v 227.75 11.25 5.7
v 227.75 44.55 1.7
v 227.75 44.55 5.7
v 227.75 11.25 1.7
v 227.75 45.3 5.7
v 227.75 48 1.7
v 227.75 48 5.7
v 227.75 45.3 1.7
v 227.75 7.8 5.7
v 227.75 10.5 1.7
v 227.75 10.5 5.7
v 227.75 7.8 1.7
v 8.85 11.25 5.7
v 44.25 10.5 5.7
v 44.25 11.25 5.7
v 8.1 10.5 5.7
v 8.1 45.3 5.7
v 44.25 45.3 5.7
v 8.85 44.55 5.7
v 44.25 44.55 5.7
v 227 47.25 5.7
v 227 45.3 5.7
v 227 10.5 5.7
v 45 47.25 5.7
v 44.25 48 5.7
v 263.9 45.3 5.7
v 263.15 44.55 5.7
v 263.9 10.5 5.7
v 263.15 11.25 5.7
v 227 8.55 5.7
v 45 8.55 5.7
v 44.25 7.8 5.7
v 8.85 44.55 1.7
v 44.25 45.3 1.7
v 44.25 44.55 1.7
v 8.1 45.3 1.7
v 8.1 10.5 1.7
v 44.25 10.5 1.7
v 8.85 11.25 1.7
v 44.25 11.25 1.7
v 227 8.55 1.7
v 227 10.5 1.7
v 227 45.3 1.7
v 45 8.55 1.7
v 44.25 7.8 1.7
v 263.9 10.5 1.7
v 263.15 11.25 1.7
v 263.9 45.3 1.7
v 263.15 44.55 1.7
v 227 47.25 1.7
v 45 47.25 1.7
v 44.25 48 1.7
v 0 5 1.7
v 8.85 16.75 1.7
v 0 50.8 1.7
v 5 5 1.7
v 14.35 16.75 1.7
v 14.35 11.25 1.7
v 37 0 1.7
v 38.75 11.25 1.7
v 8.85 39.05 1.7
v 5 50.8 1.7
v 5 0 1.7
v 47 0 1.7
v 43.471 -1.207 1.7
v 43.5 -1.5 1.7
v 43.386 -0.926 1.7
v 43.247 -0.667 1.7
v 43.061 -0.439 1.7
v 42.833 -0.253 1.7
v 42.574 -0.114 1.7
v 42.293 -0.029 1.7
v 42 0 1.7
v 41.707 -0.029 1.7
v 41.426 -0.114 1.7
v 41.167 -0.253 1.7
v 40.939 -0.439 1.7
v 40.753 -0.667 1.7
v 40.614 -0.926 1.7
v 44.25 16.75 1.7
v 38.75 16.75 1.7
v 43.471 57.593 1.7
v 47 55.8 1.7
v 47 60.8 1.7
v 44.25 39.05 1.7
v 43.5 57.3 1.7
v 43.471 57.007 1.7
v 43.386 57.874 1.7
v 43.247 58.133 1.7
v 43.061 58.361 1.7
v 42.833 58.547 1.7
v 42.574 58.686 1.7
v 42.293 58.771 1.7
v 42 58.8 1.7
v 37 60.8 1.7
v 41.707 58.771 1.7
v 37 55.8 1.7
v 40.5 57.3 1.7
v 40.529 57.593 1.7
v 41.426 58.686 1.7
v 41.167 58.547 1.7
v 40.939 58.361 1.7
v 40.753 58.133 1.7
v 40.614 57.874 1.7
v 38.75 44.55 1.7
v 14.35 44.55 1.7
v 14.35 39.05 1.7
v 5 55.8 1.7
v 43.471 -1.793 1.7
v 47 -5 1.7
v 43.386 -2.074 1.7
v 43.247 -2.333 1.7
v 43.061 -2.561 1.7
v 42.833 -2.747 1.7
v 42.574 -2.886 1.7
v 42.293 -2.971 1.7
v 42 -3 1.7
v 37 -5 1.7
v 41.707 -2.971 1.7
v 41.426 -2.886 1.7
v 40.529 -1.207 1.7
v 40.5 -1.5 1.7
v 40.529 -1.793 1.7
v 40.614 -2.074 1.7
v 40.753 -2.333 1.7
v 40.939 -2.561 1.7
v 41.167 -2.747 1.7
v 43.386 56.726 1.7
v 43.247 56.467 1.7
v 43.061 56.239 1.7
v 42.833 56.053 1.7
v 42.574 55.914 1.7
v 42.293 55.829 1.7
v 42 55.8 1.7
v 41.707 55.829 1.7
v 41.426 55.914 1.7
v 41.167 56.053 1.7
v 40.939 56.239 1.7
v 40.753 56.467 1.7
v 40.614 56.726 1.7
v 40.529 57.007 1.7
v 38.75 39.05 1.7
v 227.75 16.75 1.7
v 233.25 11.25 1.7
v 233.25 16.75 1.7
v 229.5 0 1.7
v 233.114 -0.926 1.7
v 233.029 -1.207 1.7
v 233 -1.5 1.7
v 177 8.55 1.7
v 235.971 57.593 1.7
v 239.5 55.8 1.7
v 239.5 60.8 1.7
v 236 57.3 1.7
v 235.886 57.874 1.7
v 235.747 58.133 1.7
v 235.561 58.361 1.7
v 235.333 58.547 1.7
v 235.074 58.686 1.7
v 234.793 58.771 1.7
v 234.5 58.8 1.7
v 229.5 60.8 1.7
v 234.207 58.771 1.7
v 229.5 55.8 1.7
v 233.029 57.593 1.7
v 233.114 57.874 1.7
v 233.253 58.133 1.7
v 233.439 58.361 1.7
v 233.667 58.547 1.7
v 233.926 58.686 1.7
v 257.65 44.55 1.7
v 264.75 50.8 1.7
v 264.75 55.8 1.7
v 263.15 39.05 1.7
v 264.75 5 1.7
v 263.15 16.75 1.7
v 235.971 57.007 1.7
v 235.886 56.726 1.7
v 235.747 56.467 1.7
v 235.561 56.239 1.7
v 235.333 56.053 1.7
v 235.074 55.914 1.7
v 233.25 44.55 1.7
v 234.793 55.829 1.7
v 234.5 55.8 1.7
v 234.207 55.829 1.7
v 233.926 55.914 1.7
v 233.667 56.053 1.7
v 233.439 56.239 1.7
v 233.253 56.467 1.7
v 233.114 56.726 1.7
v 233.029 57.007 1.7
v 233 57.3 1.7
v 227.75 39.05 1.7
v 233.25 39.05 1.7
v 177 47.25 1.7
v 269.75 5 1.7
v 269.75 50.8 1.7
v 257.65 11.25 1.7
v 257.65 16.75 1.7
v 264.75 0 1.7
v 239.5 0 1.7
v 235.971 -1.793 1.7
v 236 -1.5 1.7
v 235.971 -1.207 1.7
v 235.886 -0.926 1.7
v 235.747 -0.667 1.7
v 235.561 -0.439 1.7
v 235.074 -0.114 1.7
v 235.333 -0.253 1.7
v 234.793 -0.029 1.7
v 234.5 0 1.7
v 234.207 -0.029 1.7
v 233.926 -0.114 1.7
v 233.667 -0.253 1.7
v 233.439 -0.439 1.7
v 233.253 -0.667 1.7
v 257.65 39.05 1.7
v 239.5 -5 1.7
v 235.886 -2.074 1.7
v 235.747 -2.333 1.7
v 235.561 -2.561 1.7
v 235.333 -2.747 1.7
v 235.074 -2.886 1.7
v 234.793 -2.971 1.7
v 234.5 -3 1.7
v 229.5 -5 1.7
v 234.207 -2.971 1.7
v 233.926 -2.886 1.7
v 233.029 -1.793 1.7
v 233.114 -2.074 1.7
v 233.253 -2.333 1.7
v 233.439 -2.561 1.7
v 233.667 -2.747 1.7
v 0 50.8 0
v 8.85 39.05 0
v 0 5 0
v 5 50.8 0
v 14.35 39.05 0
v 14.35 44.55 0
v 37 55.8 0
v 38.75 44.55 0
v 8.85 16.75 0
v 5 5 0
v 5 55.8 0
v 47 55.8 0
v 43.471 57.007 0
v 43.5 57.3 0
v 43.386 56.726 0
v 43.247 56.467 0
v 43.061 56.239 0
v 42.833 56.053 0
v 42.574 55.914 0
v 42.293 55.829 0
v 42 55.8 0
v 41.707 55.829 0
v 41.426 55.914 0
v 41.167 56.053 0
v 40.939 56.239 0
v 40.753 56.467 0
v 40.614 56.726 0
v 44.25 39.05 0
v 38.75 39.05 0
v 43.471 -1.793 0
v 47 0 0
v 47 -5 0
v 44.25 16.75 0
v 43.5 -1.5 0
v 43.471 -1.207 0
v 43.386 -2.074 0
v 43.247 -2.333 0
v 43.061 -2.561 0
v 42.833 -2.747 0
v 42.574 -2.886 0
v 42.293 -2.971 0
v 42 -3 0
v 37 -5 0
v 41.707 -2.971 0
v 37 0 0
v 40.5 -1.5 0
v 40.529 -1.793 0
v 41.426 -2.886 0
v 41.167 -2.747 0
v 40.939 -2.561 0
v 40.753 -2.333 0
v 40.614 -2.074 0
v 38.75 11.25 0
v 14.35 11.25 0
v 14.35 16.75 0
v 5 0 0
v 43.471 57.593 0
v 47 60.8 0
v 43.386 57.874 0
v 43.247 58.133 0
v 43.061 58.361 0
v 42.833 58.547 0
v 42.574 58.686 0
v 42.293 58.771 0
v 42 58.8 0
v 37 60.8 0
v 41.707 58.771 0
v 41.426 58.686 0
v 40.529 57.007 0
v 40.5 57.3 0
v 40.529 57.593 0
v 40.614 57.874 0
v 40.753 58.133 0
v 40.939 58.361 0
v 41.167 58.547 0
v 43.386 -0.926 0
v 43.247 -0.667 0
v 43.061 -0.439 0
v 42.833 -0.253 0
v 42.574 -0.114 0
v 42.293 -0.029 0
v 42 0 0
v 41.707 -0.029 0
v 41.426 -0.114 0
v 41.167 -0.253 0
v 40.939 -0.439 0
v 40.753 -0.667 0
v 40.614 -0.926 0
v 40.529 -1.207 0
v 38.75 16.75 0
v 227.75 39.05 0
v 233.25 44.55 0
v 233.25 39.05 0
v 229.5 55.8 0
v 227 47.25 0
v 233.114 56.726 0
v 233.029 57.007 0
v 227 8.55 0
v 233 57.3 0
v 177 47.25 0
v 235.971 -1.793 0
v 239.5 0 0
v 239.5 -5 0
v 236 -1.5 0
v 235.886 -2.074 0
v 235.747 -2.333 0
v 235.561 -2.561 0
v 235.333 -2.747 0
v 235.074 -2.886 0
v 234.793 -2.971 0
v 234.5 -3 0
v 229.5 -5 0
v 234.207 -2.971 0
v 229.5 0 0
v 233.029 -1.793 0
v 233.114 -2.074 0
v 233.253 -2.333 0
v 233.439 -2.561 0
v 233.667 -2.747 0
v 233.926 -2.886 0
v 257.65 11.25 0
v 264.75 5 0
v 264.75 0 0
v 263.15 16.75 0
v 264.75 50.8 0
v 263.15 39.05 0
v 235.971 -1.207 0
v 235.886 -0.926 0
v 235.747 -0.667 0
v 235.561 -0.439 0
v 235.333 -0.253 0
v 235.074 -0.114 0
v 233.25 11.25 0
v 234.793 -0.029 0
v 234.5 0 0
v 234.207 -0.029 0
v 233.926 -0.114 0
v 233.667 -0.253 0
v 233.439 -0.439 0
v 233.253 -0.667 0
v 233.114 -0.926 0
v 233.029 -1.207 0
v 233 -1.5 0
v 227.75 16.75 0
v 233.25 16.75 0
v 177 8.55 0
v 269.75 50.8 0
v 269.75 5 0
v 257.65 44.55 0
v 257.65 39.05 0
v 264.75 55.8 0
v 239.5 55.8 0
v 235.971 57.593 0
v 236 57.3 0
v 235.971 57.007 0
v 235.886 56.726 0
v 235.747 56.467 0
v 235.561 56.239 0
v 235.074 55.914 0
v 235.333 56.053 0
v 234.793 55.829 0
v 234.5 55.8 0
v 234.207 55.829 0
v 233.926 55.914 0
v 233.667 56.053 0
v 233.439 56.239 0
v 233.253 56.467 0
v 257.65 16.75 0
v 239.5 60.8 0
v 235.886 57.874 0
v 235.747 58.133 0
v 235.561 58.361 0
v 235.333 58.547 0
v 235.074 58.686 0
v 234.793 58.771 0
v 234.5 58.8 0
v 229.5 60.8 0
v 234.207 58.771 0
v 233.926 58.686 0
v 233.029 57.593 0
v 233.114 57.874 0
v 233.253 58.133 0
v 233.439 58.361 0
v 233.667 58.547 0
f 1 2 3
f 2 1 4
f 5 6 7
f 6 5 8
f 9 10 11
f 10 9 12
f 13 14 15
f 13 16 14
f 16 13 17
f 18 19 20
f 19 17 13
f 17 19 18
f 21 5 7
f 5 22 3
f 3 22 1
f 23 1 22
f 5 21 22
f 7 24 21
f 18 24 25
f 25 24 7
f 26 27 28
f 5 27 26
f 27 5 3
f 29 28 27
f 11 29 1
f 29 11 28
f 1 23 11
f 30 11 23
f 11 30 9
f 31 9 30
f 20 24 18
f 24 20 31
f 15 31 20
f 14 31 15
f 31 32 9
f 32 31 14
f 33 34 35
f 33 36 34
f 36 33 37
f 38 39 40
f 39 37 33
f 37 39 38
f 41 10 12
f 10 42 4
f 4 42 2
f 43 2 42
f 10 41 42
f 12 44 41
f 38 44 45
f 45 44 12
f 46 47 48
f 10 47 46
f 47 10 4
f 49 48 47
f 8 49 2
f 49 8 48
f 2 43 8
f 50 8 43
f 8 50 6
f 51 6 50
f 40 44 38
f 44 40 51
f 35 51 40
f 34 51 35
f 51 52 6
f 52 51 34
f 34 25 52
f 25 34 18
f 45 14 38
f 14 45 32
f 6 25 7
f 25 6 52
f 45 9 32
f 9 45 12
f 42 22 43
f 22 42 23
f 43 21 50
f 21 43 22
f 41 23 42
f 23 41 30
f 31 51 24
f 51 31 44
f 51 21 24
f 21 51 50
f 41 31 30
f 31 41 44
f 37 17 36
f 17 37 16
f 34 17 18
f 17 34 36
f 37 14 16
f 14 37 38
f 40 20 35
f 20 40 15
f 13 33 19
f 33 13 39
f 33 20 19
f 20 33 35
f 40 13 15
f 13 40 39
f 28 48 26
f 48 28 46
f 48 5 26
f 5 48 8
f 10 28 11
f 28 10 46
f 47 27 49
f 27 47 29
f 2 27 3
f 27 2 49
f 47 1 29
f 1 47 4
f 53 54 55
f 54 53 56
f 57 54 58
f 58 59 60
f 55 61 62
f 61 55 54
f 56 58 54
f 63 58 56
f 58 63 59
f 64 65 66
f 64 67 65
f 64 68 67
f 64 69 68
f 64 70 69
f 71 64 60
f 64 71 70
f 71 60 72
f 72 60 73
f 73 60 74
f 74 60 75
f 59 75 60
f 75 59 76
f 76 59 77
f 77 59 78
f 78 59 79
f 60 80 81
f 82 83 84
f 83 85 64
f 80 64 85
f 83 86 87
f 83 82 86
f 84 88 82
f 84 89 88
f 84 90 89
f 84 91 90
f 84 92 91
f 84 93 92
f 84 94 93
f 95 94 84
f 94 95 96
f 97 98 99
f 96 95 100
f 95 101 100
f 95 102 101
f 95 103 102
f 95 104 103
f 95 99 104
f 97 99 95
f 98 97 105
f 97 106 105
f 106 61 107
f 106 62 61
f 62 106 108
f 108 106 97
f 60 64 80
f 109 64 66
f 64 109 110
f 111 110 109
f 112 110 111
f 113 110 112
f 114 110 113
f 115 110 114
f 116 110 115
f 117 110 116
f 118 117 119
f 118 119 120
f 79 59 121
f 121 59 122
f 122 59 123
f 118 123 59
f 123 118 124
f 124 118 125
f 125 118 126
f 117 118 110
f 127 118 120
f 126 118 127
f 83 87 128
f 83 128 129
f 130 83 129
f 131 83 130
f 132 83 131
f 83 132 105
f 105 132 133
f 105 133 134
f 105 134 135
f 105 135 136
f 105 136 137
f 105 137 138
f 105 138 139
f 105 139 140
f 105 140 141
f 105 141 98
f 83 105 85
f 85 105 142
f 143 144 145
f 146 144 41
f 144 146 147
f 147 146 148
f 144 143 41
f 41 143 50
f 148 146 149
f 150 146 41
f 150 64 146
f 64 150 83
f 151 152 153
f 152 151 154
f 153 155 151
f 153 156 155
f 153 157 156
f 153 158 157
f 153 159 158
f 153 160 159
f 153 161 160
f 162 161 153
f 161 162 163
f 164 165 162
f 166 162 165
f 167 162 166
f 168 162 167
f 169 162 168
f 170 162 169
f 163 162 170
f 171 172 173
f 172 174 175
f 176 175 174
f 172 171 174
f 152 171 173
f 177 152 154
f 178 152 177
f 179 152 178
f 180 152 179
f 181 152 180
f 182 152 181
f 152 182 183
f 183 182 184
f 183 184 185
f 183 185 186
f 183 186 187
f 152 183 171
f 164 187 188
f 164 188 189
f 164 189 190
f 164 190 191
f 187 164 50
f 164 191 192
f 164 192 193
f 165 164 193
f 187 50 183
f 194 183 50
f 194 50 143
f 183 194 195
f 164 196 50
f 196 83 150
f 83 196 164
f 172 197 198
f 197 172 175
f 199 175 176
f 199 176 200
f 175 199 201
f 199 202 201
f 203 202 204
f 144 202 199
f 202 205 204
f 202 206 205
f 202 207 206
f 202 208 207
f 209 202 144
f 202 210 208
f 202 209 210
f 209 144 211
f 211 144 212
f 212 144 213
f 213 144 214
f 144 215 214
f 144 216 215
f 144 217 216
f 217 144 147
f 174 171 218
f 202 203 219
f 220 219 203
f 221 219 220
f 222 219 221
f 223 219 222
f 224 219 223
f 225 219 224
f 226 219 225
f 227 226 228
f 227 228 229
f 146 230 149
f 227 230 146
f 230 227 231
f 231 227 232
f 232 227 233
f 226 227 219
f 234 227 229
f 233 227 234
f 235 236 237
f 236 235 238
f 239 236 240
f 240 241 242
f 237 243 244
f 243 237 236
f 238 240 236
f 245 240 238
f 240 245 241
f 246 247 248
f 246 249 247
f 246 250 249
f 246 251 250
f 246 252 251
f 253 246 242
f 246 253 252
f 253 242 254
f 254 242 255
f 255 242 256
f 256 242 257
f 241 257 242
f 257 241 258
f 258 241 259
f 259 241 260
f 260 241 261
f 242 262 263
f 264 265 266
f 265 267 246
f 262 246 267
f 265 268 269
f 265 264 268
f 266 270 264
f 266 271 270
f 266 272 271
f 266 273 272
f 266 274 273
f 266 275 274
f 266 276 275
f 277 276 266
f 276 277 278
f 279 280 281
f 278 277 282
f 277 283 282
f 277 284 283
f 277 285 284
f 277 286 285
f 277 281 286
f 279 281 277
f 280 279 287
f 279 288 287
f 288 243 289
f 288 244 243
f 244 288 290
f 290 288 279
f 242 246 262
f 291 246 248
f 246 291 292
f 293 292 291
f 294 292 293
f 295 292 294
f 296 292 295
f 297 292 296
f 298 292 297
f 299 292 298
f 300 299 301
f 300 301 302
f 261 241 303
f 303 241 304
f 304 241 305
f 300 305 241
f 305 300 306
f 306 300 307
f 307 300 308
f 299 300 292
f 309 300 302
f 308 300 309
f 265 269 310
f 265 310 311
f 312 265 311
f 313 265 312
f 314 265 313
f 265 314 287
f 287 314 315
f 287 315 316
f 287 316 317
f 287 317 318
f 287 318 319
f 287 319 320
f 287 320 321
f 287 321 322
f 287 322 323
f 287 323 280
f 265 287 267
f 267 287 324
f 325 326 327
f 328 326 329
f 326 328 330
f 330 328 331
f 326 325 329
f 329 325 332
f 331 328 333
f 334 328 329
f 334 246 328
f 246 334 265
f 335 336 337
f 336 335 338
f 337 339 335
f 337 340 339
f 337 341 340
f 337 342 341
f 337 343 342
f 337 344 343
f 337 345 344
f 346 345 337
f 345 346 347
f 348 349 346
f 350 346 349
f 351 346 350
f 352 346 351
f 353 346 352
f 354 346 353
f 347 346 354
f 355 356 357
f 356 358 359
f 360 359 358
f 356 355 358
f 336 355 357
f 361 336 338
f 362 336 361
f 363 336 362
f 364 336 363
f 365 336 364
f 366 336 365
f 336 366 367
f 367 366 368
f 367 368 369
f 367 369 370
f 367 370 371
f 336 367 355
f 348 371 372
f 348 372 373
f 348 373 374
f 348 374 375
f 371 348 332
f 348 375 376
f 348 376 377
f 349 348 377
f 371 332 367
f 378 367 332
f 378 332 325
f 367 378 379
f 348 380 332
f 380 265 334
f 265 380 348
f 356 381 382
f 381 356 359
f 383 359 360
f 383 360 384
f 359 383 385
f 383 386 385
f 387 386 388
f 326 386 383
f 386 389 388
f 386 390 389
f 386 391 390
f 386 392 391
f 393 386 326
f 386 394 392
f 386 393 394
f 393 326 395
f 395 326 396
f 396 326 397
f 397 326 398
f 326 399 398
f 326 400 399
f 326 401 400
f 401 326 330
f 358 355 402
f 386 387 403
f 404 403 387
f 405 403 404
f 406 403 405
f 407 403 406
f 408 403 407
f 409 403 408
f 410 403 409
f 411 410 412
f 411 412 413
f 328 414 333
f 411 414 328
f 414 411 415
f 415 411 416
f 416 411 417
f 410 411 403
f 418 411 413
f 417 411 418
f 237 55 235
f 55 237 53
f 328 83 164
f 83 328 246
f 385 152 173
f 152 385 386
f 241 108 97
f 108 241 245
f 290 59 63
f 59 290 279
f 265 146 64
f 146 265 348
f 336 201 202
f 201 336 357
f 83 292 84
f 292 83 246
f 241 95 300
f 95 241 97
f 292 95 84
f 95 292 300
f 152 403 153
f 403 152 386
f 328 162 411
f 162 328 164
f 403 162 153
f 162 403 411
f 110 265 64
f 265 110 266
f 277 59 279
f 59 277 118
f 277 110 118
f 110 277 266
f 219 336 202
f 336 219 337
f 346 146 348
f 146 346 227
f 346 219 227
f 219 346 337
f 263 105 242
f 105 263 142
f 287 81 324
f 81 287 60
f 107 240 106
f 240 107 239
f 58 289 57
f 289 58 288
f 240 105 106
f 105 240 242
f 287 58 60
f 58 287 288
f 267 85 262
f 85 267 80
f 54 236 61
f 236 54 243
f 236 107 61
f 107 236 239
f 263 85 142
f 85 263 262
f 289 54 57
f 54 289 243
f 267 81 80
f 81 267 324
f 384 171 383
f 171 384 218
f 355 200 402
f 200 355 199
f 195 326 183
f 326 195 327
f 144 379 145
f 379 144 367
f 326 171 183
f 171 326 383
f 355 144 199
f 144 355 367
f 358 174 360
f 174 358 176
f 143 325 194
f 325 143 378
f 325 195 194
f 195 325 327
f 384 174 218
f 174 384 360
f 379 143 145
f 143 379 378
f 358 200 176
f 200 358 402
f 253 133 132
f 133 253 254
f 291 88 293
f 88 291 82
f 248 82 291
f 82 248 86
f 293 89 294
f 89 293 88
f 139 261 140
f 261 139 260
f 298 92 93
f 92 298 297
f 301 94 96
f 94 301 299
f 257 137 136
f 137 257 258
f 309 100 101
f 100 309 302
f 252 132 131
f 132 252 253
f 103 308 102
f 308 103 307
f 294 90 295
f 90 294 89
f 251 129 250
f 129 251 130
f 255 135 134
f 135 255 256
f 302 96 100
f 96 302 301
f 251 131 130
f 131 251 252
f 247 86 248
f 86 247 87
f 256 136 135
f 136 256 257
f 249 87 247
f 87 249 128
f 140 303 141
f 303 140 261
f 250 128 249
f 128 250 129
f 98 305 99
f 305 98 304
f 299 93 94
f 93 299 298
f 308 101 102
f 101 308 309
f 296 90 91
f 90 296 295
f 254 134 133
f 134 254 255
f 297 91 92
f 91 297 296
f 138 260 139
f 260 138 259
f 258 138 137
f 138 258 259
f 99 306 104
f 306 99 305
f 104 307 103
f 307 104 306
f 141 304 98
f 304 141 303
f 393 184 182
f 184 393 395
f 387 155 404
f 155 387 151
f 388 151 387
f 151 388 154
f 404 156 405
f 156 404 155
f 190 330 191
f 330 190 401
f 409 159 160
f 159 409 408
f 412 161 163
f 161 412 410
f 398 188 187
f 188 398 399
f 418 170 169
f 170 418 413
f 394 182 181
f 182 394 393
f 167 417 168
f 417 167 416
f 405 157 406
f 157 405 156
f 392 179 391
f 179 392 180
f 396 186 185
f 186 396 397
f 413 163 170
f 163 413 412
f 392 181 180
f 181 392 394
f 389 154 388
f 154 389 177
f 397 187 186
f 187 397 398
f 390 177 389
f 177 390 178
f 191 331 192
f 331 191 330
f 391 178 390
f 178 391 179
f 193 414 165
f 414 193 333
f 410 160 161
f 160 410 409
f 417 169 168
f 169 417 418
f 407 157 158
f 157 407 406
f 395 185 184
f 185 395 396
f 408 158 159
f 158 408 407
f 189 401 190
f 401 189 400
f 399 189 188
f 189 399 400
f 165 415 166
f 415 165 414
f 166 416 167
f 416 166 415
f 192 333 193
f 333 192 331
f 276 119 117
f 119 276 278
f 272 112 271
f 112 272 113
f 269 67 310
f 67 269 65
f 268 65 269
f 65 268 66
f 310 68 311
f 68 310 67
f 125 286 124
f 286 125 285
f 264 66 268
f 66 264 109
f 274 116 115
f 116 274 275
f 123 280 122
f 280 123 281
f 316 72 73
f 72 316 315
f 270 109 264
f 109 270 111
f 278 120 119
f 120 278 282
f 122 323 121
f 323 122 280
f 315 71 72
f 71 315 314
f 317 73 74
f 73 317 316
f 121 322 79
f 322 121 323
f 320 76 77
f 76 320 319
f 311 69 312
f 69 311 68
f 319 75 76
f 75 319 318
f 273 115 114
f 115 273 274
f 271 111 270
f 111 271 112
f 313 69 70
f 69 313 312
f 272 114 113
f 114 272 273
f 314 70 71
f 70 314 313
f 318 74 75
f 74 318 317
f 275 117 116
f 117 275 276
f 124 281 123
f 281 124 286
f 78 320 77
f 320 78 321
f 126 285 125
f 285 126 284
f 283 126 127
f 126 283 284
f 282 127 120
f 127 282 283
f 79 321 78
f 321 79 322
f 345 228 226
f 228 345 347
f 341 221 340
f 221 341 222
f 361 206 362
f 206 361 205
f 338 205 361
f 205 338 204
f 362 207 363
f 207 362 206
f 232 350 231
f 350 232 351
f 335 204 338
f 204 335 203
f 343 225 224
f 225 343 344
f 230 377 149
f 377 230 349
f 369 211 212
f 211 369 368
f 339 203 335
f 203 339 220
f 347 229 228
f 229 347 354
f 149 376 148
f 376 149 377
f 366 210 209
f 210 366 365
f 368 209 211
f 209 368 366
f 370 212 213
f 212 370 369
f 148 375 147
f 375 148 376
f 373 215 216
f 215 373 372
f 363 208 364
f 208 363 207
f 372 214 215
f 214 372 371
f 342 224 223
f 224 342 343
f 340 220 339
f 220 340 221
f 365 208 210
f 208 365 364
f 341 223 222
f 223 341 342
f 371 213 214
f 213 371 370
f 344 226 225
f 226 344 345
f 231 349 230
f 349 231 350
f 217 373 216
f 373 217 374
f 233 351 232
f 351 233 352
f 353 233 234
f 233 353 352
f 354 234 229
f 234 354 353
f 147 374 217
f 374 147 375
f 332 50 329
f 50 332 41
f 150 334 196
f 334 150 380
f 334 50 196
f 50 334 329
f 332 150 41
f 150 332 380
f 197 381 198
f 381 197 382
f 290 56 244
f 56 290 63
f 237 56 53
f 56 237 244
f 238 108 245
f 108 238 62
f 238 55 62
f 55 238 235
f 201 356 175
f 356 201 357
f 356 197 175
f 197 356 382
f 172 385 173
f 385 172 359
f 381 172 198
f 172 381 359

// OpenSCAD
// Original LCD module is a large rectangular block
//
original_width  = 272.0;    // Ruler measurement
original_depth  = 55.8;     // Front to back
original_height = 1.7;      // How tall the new mount is (not the old module)

// There are 4 mounting holes which project out from
// the rectangle. The posts they drop onto need a slight
// tab
//
//     1                        2
//
//     3                        4
//
mount_hole_tab_1_from_left  = 37.0;
mount_hole_tab_2_from_right = 32.5;
mount_hole_tab_3_from_left  = 37.0;
mount_hole_tab_4_from_right = 32.5;

mount_hole_tab_depth = 5.0;
mount_hole_tab_width = 10.0;

mount_hole_hole_centre_1_3 = mount_hole_tab_1_from_left + (mount_hole_tab_width/2);
mount_hole_hole_centre_2_4 = mount_hole_tab_2_from_right + (mount_hole_tab_width/2);
mount_hole_hole_diameter   = 3.0;
mount_hole_hole_inset      = 2.0 + (mount_hole_hole_diameter/2);   // To hole centre

// A framing wall is created around the MIPI display to hold
// it in place. 
//
// The height of the wall needs to be taller than the display
// is thick. When the bezel clamps down on it, the belzel will
// clamp the wall, not the display itself.
//
// These values are from the display datasheet, plus a little
// wiggle room. MIPI display is 3.4mm thick, wall needs to be taller.
//
mipi_display_width = 181.5 + 0.5;
mipi_display_depth =  38.2 + 0.5;
mipi_display_frame_height = 3.4 + 0.6;

// The frame walls need to be wide enough so they have the strength
// to hold the display in place. But the wider they are the more the
// gap between main display and side displays. 
// 
mipi_display_frame_width  = 0.75;

mipi_display_frame_outer_width = mipi_display_width + (mipi_display_frame_width*2);
mipi_display_frame_outer_depth = mipi_display_depth + (mipi_display_frame_width*2);

// The MIPI display has a ribbon, a connector and some kapton covered
// circuitry on its underside. There needs to be a hole for this. It's
// also where the display FTC connector heads off to the CM4.
//
mipi_display_circuitry_knockout_width = 50.0;

mipi_centre_point_x = original_width / 2;
mipi_centre_point_y = original_depth / 2;

// OLEDs are the 1.3" version
//
oled_display_width  = 35.4;
oled_display_depth  = 33.3;

// Walls are the same for now
//
oled_display_frame_height = mipi_display_frame_height;
oled_display_frame_width = mipi_display_frame_width;

oled_display_frame_outer_width = oled_display_width + (oled_display_frame_width*2);
oled_display_frame_outer_depth = oled_display_depth + (oled_display_frame_width*2);

$fn = 32;

difference()
{
  // Create a big block and tag on the little tabs for the 
  // mounting holes
  //
  union()
  {
    cube( [original_width, original_depth, original_height] );

    // Sticky out tab, top left
    //
    translate( [mount_hole_tab_1_from_left,
                original_depth,
                0] )
    {
      cube( [mount_hole_tab_width,
             mount_hole_tab_depth,
             original_height] );
    }

    // Sticky out tab, top right
    //
    translate( [original_width - mount_hole_tab_2_from_right - mount_hole_tab_width,
                original_depth,
                0] )
    {
      cube( [mount_hole_tab_width,
             mount_hole_tab_depth,
             original_height] );
    }

    // Sticky out tab, bottom left
    //
    translate( [mount_hole_tab_3_from_left,
                -mount_hole_tab_depth,
                0] )
    {
      cube( [mount_hole_tab_width,
            mount_hole_tab_depth,
            original_height] );
    }

    // Sticky out tab, bottom right
    //
    translate( [original_width - mount_hole_tab_4_from_right - mount_hole_tab_width,,
                -mount_hole_tab_depth,
                0] )
    {
      cube( [mount_hole_tab_width,
            mount_hole_tab_depth,
            original_height] );
    }
    
    // Now place a frame on top for the MIPI display to sit in
    // The seating area is a fraction of a mm larger than the display.
    // It can't rattle, or be too snug. Dimensions come from the
    // datasheet, plus a bit where needed.
    //
    translate( [mipi_centre_point_x - (mipi_display_frame_outer_width/2),
                mipi_centre_point_y - (mipi_display_frame_outer_depth/2),
                original_height] )
    {
      difference()
      {
        cube( [mipi_display_frame_outer_width,
               mipi_display_frame_outer_depth,
               mipi_display_frame_height] );

        translate( [mipi_display_frame_width,
                    mipi_display_frame_width,
                    0] )
          cube( [mipi_display_width,
                mipi_display_depth,
                mipi_display_frame_height] );
      }
    }
  
    // Left side OLED frame. Inner side of the frame sits on top of the MIPI
    // screen's frame
    //
    translate( [mipi_centre_point_x - (mipi_display_frame_outer_width/2) - oled_display_frame_outer_width
                                                                         + oled_display_frame_width,
                mipi_centre_point_y - (oled_display_frame_outer_depth/2),
                original_height] )
    {
      difference()
      {
        cube( [oled_display_frame_outer_width,
               oled_display_frame_outer_depth,
               oled_display_frame_height] );

        translate( [oled_display_frame_width,
                    oled_display_frame_width,
                    0] )
          cube( [oled_display_width,
                 oled_display_depth,
                 oled_display_frame_height] );
      }
    }

    // Right side OLED frame. Inner side of the frame sits on top of the MIPI
    // screen's frame
    //
    translate( [mipi_centre_point_x + (mipi_display_frame_outer_width/2) - oled_display_frame_width,
                mipi_centre_point_y - (oled_display_frame_outer_depth/2),
                original_height] )
    {
      difference()
      {
        cube( [oled_display_frame_outer_width,
               oled_display_frame_outer_depth,
               oled_display_frame_height] );

        translate( [oled_display_frame_width,
                    oled_display_frame_width,
                    0] )
          cube( [oled_display_width,
                 oled_display_depth,
                 oled_display_frame_height] );
      }
    }
  }
  
  // Top left mounting post hole
  //
  translate( [mount_hole_hole_centre_1_3,
              original_depth + mount_hole_tab_depth - mount_hole_hole_inset,
              0] )
  {
    cylinder( h=original_height, d=mount_hole_hole_diameter, center=false );
  }

  // Top right mounting post hole
  //
  translate( [original_width - mount_hole_hole_centre_2_4,
              original_depth + mount_hole_tab_depth - mount_hole_hole_inset,
              0] )
  {
    cylinder( h=original_height, d=mount_hole_hole_diameter, center=false );
  }

  // Bottom left mounting post hole
  //
  translate( [mount_hole_hole_centre_1_3,
              -mount_hole_tab_depth + mount_hole_hole_inset,
              0] )
  {
    cylinder( h=original_height, d=mount_hole_hole_diameter, center=false );
  }

  // Bottom right mounting post hole
  //
  translate( [original_width - mount_hole_hole_centre_2_4,
              -mount_hole_tab_depth + mount_hole_hole_inset,
              0] )
  {
    cylinder( h=original_height, d=mount_hole_hole_diameter, center=false );
  }
  
  // Knock out the area behind the right side of the display
  // where the FTC connector and circuitry is
  //
  translate( [mipi_centre_point_x + (mipi_display_width/2) - mipi_display_circuitry_knockout_width,
              mipi_centre_point_y - (mipi_display_depth/2),
              0] )
  {
    cube( [mipi_display_circuitry_knockout_width, mipi_display_depth, original_height] );
  }

  // Knock out gaps for OLED wires. I actually knock out a sort of large cross
  // made from two cubes, leaving posts in the corners
  //
  oled_post_width = 5.5;
  
  // Left side OLED wire knockout
  //
  union()
  {
    // Front to back knockout
    //
    translate( [mipi_centre_point_x - (mipi_display_frame_outer_width/2) - oled_display_frame_outer_width
                                                                         + (oled_display_frame_width*2)
                                                                         + oled_post_width,
                mipi_centre_point_y - (oled_display_depth/2),
                0] )
      cube( [oled_display_width - (oled_post_width*2),
             oled_display_depth,
             original_height] );

    // Left to right knockout
    //
    translate( [mipi_centre_point_x - (mipi_display_frame_outer_width/2) - oled_display_width,
                mipi_centre_point_y - (oled_display_depth/2) + oled_post_width,
                0] )
      cube( [oled_display_width,
             oled_display_depth - (oled_post_width*2),
             original_height] );
  }

  // Right side OLED wire knockout
  //
  union()
  {
    translate( [mipi_centre_point_x + (mipi_display_frame_outer_width/2) + oled_post_width,
                mipi_centre_point_y - (oled_display_depth/2),
                0] )
      cube( [oled_display_width - (oled_post_width*2),
             oled_display_depth,
             original_height] );

    translate( [mipi_centre_point_x + (mipi_display_frame_outer_width/2),
                mipi_centre_point_y - (oled_display_depth/2) + oled_post_width,
                0] )
      cube( [oled_display_width,
             oled_display_depth - (oled_post_width*2),
             original_height] );
  }
  
  // The inside of the original bezel has an intrusion on the very right
  // hand side. It just fouls on the edge of the mount. With everything
  // else pretty much perfect, the simplist solution is to trim the side
  // very slightly.
  //
  right_side_trim = 2.25;
  translate( [original_width-right_side_trim, 0, 0 ] )
    cube( [right_side_trim, original_depth, original_height] );
  
  // The mount won't quite fit on the bed of my printer. Nip the corners off.
  // 5mm is adequate to make it fit, but removing a bit more material makes for
  // a faster print.
  //
  nip_size = 5.0;
  translate( [0, 0, 0 ] )
    cube( [nip_size, nip_size, original_height] );
  translate( [0, original_depth-nip_size, 0 ] )
    cube( [nip_size, nip_size, original_height] );
  translate( [original_width-nip_size-right_side_trim, 0, 0 ] )
    cube( [nip_size, nip_size, original_height] );
  translate( [original_width-nip_size-right_side_trim, original_depth-nip_size, 0 ] )
    cube( [nip_size, nip_size, original_height] );
}
